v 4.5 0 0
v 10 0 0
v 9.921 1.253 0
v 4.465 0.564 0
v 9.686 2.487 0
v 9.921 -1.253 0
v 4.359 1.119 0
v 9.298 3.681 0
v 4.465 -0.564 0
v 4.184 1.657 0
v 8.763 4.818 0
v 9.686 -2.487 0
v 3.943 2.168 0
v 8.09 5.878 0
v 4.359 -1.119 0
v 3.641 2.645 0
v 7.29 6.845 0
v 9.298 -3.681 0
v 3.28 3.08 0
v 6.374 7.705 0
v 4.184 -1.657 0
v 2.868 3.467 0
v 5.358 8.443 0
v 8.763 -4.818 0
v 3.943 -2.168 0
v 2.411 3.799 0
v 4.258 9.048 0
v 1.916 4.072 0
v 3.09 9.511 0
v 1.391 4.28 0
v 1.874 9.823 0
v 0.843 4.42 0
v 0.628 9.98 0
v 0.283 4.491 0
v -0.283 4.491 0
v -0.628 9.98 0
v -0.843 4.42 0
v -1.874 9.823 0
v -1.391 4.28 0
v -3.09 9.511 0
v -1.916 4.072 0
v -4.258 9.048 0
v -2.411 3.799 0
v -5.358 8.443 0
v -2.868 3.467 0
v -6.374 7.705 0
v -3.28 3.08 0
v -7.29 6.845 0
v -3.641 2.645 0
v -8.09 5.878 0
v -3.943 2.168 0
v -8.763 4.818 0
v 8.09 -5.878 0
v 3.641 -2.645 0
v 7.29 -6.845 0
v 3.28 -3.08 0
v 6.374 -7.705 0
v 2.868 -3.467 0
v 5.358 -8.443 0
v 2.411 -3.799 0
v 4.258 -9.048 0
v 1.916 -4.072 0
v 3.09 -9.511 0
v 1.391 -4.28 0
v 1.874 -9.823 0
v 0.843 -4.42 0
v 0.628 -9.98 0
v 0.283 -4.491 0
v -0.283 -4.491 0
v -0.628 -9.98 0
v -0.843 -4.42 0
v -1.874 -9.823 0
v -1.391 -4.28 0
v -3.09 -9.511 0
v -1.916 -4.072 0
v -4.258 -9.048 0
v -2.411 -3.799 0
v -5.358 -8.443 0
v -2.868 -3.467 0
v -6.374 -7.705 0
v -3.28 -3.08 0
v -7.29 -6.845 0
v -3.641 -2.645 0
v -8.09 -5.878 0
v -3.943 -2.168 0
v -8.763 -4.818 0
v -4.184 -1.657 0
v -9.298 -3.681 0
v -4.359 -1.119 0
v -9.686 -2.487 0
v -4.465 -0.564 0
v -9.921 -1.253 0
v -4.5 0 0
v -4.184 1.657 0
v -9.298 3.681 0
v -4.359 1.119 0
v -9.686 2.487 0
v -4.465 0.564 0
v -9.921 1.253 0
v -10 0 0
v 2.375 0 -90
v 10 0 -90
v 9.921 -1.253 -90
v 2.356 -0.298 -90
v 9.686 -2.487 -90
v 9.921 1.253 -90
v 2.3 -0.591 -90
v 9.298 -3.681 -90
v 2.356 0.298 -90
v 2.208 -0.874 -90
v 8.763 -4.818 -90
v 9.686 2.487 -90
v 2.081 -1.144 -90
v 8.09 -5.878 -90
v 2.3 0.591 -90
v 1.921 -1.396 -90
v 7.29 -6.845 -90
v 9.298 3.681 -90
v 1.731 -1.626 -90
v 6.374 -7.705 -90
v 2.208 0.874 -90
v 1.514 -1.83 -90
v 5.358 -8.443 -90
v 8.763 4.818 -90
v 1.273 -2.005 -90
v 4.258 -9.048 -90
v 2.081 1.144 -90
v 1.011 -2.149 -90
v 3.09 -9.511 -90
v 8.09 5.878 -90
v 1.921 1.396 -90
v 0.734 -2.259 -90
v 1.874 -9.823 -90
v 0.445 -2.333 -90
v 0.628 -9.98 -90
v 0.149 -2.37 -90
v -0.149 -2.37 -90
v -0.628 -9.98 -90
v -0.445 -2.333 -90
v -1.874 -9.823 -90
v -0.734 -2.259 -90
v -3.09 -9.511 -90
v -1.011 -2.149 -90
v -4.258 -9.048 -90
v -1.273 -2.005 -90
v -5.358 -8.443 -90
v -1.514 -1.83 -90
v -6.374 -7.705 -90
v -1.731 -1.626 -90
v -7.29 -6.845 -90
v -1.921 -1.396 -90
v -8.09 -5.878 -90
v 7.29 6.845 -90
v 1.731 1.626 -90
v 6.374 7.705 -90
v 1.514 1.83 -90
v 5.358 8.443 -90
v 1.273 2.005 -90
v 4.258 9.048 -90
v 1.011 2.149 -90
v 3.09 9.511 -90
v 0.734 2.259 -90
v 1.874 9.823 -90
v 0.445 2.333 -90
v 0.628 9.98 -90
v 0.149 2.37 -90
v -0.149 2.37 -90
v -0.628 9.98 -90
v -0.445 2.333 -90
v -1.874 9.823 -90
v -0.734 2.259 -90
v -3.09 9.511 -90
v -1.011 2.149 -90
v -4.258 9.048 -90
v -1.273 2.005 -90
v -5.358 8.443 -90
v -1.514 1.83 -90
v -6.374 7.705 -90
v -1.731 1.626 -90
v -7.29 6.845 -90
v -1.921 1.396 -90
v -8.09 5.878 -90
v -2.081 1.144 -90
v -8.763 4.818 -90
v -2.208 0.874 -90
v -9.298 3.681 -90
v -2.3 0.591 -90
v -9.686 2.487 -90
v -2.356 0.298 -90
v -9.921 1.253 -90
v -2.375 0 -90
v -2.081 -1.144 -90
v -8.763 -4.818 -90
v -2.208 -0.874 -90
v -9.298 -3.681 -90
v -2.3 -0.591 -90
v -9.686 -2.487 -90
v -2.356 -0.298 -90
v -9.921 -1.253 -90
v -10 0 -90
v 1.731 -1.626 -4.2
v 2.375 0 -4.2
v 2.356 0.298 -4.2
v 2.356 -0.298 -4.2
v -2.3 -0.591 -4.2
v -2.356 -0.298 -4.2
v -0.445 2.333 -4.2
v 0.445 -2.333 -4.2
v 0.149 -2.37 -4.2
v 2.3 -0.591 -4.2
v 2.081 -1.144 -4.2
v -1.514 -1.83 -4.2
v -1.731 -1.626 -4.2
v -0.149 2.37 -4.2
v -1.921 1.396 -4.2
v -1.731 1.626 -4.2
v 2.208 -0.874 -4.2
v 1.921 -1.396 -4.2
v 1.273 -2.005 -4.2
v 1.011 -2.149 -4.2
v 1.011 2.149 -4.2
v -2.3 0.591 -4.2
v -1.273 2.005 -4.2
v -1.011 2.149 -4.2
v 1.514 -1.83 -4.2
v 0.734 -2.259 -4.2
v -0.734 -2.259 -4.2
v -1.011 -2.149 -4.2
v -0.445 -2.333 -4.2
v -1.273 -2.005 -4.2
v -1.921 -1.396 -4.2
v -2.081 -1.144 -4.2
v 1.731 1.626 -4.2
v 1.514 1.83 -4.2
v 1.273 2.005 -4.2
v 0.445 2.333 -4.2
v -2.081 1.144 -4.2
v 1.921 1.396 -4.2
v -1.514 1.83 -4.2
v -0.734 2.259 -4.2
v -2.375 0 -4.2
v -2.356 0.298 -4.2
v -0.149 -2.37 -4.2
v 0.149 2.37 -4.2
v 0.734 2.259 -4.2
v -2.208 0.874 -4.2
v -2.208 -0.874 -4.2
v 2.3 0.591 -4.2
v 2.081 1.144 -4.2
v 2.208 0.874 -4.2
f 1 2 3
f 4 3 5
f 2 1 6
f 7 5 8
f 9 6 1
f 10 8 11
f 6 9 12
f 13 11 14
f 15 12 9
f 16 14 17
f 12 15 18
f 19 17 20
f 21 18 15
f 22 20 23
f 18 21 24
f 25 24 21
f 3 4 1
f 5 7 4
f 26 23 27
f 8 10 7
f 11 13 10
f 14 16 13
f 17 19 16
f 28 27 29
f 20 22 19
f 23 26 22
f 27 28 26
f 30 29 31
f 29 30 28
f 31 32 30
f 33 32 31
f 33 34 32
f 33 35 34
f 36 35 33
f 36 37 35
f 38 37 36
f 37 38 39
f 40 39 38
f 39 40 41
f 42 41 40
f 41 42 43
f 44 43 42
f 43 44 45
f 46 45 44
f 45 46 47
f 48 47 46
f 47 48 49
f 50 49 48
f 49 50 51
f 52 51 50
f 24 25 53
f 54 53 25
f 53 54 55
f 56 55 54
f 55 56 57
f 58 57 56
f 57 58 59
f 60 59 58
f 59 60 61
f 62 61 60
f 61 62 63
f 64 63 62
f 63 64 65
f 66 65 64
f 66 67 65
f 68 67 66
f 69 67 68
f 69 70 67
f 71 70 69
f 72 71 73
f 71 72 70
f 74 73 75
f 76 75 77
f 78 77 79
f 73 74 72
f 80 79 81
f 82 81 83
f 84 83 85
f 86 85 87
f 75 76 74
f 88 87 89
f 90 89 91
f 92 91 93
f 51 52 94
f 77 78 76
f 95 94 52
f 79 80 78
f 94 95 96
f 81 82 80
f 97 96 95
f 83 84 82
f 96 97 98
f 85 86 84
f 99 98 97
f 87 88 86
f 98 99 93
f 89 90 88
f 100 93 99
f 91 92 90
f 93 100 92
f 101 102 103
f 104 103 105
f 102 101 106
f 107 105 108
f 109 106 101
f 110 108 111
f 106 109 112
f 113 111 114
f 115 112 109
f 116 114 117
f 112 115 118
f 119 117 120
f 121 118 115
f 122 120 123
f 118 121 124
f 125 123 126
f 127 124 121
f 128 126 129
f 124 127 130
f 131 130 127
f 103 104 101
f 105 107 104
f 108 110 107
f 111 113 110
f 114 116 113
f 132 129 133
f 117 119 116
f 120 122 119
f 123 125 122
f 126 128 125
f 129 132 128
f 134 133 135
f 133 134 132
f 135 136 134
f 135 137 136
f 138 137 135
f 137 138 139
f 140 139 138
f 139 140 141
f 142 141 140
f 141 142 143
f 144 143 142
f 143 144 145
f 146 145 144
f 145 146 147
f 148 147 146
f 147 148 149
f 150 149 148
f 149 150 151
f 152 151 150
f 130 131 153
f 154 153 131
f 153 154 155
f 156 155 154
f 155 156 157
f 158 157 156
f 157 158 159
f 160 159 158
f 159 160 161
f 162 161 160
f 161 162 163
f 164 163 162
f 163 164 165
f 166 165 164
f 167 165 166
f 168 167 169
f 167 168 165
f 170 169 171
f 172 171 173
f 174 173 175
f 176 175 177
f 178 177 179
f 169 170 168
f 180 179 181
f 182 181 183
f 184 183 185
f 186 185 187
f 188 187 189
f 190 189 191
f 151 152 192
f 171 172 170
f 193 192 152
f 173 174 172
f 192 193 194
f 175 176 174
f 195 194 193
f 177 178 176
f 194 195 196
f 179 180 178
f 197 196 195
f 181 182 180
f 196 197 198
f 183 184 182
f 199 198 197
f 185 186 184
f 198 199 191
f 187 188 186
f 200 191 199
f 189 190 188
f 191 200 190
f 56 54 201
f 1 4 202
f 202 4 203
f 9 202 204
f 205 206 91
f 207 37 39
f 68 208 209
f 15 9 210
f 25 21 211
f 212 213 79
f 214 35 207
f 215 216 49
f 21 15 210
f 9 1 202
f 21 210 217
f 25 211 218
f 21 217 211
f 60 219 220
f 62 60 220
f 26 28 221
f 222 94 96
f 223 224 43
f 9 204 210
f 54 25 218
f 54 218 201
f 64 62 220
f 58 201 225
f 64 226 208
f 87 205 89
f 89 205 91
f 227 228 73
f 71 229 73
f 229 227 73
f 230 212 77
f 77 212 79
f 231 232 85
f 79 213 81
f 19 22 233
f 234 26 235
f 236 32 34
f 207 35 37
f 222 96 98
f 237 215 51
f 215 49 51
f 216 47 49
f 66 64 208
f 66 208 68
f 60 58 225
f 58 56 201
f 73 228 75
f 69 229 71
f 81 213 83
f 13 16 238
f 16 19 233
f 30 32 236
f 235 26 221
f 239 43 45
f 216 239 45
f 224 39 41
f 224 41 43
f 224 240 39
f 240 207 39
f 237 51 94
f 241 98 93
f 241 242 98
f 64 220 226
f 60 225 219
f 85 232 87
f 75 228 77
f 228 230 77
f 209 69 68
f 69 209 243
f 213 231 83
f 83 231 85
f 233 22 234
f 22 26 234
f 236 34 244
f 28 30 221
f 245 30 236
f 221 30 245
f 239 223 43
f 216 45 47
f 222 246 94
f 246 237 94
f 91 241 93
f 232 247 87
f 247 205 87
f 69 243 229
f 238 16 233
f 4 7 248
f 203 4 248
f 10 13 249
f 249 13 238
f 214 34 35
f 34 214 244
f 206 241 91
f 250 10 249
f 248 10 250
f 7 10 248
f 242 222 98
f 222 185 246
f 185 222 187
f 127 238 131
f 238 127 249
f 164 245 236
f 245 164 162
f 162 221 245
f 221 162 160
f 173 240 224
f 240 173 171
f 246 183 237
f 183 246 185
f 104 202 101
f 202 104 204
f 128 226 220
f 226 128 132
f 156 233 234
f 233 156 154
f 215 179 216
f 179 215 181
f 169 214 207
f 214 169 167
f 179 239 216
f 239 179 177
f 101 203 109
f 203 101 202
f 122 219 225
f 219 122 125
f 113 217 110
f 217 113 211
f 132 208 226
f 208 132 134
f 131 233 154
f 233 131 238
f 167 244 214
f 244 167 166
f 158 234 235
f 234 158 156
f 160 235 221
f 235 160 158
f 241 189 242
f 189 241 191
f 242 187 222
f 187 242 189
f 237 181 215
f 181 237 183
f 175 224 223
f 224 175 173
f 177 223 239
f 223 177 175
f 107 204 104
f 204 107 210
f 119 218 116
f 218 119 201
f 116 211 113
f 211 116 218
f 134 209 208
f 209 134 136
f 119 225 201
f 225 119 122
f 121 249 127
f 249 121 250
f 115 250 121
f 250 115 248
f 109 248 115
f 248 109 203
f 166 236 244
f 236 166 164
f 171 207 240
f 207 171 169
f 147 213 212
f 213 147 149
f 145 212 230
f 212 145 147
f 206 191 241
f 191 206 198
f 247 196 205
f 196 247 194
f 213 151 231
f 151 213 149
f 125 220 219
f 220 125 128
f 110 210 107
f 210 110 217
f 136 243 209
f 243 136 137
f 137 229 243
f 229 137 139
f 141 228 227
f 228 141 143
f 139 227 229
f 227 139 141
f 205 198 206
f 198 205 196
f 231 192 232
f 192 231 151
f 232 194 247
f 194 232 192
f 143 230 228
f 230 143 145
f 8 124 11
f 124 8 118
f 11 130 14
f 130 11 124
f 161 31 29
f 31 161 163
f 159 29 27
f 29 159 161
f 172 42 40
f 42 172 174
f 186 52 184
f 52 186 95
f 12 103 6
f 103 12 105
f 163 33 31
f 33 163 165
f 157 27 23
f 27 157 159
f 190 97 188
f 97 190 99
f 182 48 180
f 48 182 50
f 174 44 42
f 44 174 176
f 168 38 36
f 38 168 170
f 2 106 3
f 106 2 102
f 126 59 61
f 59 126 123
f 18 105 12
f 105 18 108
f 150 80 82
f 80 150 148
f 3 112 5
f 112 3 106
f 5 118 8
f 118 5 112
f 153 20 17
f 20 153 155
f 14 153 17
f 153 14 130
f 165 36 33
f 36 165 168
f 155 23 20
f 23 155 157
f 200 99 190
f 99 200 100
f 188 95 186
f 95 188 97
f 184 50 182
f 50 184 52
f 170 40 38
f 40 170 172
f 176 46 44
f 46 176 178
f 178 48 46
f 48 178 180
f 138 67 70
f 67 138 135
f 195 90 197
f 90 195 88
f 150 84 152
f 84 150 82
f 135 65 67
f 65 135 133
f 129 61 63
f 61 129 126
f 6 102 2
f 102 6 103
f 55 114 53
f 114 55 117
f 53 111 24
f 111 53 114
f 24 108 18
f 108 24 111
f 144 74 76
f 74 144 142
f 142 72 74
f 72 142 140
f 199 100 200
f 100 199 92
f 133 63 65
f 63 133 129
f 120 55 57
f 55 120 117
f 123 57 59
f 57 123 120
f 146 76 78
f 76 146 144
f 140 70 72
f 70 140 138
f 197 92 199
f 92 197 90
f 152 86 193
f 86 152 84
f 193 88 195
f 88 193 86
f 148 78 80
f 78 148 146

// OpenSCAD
$fn = 50;


difference() {
	union() {
		translate(v = [0, 0, -90.0000000000]) {
			cylinder(h = 90, r = 10.0000000000);
		}
	}
	union() {
		translate(v = [0, 0, 0]) {
			rotate(a = [0, 0, 0]) {
				difference() {
					union() {
						#translate(v = [0, 0, -90.0000000000]) {
							cylinder(h = 90, r = 2.2500000000);
						}
						#translate(v = [0, 0, -4.2000000000]) {
							cylinder(h = 4.2000000000, r1 = 2.3750000000, r2 = 4.5000000000);
						}
						#translate(v = [0, 0, -90.0000000000]) {
							cylinder(h = 90, r = 2.3750000000);
						}
						#translate(v = [0, 0, -90.0000000000]) {
							cylinder(h = 90, r = 2.2500000000);
						}
					}
					union();
				}
			}
		}
	}
}
